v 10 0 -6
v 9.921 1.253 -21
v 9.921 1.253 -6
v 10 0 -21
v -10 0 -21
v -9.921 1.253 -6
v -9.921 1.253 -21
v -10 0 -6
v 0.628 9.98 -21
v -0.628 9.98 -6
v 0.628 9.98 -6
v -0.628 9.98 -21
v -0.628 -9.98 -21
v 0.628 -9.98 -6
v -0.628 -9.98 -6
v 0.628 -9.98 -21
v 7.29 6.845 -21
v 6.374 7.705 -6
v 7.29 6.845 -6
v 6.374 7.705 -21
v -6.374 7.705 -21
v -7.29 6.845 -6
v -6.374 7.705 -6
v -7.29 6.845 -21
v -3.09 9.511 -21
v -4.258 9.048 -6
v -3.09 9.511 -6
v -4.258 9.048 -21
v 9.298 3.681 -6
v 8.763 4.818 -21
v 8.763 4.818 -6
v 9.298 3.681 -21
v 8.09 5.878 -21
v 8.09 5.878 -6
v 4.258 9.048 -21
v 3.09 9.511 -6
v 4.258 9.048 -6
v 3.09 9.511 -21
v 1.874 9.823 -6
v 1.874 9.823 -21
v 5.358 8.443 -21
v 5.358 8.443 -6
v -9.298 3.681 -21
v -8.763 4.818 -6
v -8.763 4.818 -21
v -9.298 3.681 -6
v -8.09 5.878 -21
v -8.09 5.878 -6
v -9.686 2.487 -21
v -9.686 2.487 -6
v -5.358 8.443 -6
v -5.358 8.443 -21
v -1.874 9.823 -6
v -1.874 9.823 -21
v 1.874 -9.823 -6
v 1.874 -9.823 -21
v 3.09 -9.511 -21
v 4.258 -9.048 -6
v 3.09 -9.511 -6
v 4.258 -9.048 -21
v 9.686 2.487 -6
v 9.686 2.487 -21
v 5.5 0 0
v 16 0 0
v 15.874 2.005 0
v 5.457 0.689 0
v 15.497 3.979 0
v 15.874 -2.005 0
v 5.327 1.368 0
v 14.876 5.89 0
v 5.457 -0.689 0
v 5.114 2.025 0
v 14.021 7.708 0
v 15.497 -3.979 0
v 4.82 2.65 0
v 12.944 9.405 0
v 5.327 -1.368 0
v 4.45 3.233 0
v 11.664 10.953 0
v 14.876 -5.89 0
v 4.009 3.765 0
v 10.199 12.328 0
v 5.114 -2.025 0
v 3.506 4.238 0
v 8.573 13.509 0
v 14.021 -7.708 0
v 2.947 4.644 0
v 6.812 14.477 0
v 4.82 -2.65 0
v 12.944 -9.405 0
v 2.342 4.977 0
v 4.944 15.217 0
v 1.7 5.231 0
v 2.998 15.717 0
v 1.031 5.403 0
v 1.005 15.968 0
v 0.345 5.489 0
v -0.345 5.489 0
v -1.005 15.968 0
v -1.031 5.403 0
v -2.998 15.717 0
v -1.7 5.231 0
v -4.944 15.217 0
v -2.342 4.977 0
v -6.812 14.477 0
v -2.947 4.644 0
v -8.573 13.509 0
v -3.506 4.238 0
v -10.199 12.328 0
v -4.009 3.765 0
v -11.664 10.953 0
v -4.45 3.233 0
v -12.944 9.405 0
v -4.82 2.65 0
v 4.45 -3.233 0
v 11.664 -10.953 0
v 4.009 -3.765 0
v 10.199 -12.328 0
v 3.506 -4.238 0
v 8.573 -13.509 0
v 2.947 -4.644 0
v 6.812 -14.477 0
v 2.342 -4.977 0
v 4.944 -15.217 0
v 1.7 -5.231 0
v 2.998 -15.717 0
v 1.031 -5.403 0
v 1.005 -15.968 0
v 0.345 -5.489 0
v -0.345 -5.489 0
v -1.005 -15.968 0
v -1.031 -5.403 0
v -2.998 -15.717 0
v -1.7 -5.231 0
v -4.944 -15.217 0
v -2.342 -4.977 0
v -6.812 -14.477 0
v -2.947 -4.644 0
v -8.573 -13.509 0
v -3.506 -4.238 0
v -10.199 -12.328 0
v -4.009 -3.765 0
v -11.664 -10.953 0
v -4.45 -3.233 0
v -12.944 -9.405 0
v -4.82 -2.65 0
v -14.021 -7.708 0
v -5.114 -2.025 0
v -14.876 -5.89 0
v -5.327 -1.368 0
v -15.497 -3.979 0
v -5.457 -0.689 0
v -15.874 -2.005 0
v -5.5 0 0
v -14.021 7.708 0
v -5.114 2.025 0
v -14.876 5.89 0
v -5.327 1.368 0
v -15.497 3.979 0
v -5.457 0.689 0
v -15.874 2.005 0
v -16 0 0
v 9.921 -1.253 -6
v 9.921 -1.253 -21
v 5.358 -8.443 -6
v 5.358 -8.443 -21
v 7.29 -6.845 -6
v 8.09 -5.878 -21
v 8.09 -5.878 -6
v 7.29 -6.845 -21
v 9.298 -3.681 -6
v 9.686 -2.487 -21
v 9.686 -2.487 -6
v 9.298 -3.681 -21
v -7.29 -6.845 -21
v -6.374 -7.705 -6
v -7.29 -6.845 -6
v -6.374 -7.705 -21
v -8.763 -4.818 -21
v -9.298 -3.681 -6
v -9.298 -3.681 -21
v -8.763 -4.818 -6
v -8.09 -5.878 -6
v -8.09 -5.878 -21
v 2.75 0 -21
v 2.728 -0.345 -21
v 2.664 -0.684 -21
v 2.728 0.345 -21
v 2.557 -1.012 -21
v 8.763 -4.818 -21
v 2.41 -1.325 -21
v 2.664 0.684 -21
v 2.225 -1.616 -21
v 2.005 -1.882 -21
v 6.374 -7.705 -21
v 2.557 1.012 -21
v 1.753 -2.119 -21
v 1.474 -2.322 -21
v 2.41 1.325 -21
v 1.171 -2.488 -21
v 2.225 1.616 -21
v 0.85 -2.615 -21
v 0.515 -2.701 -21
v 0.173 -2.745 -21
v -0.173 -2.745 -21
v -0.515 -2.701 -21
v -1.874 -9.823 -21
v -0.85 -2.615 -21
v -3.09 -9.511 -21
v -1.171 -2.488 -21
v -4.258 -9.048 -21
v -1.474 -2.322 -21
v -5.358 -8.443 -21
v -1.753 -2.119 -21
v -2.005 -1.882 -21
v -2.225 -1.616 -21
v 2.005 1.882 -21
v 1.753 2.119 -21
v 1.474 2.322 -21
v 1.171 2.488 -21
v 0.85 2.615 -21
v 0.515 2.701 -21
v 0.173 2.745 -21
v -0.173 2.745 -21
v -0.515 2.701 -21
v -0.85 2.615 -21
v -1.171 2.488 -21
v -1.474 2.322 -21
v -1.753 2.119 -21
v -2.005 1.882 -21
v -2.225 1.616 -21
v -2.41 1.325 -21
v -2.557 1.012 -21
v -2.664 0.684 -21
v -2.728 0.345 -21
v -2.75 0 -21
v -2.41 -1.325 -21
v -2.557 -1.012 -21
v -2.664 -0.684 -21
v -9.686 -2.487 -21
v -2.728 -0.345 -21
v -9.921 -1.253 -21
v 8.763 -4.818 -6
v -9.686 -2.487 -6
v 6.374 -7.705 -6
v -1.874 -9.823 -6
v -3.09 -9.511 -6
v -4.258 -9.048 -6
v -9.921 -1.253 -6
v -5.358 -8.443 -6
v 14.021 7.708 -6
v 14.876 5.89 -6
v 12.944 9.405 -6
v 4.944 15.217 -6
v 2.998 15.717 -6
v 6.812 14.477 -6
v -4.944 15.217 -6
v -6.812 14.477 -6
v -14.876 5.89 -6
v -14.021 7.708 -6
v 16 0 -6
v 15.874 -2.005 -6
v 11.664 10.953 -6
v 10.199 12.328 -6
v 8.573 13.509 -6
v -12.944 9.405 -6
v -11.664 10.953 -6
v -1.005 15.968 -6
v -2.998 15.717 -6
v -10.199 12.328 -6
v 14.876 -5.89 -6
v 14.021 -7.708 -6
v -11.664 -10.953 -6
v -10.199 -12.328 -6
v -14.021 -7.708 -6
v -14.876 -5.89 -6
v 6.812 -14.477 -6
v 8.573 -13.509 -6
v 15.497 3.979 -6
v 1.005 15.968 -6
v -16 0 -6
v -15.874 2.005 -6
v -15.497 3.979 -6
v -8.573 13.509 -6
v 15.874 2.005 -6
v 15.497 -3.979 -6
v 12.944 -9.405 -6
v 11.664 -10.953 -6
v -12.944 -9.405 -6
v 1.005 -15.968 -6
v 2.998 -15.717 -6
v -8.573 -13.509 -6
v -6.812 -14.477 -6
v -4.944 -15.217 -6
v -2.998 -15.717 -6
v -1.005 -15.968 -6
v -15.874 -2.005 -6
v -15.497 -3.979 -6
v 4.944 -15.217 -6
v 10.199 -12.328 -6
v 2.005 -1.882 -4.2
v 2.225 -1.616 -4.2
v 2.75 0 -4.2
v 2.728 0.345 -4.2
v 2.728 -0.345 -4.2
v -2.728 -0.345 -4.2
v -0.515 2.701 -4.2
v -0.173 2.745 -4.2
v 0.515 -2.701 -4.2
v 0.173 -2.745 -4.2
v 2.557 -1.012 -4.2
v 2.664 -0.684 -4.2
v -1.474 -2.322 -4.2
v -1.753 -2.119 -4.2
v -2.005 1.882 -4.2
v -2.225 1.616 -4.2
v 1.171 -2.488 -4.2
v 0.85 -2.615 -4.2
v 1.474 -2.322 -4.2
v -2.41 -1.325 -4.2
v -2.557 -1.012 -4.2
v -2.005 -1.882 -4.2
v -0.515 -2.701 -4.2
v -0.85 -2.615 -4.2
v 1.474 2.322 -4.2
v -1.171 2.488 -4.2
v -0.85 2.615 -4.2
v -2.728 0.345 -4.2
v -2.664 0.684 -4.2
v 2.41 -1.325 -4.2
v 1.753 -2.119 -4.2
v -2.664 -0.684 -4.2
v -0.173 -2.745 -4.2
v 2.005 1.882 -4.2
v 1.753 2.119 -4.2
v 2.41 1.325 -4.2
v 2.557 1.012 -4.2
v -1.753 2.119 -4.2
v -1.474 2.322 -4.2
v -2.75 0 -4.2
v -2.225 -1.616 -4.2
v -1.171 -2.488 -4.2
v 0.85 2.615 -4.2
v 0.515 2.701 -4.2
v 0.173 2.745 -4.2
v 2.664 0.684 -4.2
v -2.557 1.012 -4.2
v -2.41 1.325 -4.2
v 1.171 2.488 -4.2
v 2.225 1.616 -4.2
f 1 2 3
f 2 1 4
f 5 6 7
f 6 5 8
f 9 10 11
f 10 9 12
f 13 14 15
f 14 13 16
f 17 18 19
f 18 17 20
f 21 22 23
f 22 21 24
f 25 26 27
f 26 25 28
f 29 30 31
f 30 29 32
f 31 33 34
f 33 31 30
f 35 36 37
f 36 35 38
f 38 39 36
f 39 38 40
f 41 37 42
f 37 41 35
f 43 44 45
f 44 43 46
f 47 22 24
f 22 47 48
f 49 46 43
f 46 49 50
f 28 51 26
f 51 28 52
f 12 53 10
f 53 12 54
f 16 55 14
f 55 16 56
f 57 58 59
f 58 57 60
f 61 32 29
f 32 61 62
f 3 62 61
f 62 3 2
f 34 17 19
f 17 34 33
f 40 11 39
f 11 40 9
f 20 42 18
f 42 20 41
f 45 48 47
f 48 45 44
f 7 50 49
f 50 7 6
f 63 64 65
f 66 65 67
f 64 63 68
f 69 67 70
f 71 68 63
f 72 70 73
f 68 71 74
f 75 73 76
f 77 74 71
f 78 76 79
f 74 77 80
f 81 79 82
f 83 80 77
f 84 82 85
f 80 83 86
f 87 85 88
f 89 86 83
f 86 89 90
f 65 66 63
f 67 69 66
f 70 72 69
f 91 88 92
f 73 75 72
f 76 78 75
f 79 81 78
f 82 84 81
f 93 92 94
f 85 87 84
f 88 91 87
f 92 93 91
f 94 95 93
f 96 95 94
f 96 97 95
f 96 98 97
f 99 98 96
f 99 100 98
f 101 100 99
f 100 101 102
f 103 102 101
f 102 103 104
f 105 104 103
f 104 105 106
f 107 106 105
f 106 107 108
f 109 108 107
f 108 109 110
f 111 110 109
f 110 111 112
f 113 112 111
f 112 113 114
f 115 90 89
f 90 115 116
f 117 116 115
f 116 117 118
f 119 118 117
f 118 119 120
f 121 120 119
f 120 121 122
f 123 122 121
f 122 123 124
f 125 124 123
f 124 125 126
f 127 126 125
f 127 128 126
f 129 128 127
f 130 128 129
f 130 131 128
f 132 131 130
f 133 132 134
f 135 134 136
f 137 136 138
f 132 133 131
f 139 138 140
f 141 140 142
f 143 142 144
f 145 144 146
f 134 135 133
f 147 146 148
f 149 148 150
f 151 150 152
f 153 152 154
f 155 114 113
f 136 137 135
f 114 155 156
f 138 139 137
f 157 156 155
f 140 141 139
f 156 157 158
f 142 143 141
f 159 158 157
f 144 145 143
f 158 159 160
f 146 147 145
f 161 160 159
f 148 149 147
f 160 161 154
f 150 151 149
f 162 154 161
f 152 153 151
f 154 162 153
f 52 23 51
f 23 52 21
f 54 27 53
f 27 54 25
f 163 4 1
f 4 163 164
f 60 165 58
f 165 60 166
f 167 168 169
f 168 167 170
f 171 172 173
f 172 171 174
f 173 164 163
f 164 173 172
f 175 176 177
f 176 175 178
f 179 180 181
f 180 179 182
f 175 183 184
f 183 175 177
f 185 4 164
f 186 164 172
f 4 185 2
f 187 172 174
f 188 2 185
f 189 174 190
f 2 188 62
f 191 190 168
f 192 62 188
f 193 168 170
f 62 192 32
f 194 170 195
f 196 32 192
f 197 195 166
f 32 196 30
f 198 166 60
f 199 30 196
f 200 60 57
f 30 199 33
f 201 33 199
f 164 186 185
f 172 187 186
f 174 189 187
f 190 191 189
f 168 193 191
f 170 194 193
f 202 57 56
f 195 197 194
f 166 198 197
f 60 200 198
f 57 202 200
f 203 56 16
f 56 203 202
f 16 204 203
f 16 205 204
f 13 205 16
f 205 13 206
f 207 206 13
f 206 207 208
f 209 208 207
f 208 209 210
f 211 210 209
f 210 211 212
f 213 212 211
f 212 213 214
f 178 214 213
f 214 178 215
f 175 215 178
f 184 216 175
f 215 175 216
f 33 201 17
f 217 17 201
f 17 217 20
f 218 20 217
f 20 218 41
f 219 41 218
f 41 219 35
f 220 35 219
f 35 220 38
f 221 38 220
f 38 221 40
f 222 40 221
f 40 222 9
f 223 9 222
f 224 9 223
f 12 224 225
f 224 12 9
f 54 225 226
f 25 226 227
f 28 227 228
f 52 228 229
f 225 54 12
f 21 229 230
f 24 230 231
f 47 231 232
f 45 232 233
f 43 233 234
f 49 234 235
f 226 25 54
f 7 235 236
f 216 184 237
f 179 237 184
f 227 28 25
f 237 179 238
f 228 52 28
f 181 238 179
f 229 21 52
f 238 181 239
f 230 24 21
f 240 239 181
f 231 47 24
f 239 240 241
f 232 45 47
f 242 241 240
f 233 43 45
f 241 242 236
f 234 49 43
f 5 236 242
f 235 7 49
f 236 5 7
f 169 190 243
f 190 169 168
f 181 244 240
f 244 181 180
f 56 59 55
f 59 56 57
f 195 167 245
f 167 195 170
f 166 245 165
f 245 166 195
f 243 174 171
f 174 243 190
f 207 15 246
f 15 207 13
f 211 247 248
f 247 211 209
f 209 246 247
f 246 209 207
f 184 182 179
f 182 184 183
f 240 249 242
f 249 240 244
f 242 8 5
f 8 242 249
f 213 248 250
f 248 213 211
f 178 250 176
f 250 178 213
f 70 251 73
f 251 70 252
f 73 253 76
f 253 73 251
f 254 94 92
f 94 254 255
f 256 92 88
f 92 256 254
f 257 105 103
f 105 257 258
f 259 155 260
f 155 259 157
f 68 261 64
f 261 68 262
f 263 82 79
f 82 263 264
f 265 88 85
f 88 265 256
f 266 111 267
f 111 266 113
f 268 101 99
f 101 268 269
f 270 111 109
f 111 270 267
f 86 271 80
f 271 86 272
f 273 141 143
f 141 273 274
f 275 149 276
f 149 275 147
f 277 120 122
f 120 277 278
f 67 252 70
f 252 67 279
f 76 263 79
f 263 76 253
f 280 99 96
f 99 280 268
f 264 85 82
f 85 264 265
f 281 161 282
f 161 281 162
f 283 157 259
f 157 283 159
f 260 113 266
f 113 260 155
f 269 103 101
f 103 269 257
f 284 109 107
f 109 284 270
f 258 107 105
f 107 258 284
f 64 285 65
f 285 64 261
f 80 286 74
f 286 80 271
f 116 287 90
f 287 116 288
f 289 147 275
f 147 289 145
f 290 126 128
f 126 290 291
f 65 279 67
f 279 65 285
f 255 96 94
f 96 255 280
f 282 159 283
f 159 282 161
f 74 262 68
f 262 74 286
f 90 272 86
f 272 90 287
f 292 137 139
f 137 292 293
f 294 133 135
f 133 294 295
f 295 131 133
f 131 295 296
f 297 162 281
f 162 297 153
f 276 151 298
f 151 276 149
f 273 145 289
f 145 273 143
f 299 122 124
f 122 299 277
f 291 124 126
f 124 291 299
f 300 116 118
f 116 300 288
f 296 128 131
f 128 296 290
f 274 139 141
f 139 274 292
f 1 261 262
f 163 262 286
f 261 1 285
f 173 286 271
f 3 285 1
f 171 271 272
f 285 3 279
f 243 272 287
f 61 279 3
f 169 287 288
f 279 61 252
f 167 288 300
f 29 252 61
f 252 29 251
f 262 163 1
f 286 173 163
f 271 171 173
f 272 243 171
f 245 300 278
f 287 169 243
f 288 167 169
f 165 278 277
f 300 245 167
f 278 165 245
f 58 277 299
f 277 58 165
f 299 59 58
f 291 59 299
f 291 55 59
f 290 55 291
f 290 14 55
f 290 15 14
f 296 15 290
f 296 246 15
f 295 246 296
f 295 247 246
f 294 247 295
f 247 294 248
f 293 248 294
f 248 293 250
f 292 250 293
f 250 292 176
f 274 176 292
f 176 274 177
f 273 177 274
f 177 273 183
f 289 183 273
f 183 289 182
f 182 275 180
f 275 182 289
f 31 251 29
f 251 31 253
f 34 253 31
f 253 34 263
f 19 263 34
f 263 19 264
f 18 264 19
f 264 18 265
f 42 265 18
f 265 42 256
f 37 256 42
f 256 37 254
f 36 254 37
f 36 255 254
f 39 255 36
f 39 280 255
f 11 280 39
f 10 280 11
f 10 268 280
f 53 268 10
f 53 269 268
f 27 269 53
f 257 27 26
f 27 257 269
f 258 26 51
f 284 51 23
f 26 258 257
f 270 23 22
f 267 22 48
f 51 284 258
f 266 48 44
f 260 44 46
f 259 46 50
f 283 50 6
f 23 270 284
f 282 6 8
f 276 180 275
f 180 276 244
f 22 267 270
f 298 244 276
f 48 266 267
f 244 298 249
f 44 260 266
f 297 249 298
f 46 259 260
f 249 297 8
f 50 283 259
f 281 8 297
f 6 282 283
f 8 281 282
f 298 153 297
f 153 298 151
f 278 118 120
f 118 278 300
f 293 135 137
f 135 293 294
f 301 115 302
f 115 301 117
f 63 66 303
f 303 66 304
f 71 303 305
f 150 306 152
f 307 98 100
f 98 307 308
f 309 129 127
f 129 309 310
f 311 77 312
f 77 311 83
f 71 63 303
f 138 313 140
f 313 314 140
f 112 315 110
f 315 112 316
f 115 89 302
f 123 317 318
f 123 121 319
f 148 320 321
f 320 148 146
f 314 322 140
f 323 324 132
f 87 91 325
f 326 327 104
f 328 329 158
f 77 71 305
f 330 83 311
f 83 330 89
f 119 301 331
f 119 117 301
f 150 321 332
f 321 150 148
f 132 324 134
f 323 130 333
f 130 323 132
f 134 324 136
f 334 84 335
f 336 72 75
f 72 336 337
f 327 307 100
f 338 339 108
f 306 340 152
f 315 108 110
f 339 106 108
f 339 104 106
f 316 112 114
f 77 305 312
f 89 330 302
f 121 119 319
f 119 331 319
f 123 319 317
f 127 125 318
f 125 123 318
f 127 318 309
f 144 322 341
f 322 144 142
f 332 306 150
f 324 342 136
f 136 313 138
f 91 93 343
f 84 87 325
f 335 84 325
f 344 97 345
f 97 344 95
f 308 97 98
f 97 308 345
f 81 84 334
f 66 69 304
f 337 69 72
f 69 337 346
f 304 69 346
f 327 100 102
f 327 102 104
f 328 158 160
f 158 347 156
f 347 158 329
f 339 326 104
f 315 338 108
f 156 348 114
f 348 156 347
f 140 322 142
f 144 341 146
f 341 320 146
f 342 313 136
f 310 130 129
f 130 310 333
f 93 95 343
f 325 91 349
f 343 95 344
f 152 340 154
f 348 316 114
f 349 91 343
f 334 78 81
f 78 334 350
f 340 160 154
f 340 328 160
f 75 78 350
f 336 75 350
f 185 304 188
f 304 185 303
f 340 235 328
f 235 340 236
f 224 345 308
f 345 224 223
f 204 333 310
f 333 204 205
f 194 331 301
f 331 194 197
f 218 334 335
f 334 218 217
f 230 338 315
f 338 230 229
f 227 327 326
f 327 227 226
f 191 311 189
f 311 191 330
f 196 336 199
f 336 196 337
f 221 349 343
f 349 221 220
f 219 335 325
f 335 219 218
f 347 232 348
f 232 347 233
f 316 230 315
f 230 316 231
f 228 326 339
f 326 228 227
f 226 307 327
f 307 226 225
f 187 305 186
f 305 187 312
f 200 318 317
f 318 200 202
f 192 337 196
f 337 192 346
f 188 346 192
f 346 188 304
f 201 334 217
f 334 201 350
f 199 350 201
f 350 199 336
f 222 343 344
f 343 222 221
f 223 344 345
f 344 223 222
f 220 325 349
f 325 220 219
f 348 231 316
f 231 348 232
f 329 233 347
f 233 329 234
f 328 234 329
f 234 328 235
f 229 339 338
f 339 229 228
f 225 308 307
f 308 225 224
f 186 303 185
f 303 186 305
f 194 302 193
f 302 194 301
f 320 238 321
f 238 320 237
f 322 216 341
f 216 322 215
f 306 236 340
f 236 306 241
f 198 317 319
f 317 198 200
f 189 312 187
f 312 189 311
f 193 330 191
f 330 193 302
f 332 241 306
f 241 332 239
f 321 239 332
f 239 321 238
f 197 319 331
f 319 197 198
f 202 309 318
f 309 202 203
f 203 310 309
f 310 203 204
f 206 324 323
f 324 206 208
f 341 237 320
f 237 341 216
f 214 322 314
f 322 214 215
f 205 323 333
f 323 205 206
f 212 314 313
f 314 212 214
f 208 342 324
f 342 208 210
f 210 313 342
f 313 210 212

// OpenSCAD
$fn = 50;


difference() {
	union() {
		translate(v = [0, 0, -21.0000000000]) {
			cylinder(h = 21, r = 10.0000000000);
		}
		translate(v = [0, 0, -6.0000000000]) {
			cylinder(h = 6, r = 16.0000000000);
		}
	}
	union() {
		translate(v = [0, 0, 0]) {
			rotate(a = [0, 0, 0]) {
				difference() {
					union() {
						#translate(v = [0, 0, -21.0000000000]) {
							cylinder(h = 21, r = 2.2500000000);
						}
						#translate(v = [0, 0, -4.2000000000]) {
							cylinder(h = 4.2000000000, r = 10.0000000000, r1 = 2.7500000000, r2 = 5.5000000000);
						}
						#translate(v = [0, 0, -21.0000000000]) {
							cylinder(h = 21, r = 2.7500000000);
						}
						#translate(v = [0, 0, -21.0000000000]) {
							cylinder(h = 21, r = 2.2500000000);
						}
					}
					union();
				}
			}
		}
	}
}
